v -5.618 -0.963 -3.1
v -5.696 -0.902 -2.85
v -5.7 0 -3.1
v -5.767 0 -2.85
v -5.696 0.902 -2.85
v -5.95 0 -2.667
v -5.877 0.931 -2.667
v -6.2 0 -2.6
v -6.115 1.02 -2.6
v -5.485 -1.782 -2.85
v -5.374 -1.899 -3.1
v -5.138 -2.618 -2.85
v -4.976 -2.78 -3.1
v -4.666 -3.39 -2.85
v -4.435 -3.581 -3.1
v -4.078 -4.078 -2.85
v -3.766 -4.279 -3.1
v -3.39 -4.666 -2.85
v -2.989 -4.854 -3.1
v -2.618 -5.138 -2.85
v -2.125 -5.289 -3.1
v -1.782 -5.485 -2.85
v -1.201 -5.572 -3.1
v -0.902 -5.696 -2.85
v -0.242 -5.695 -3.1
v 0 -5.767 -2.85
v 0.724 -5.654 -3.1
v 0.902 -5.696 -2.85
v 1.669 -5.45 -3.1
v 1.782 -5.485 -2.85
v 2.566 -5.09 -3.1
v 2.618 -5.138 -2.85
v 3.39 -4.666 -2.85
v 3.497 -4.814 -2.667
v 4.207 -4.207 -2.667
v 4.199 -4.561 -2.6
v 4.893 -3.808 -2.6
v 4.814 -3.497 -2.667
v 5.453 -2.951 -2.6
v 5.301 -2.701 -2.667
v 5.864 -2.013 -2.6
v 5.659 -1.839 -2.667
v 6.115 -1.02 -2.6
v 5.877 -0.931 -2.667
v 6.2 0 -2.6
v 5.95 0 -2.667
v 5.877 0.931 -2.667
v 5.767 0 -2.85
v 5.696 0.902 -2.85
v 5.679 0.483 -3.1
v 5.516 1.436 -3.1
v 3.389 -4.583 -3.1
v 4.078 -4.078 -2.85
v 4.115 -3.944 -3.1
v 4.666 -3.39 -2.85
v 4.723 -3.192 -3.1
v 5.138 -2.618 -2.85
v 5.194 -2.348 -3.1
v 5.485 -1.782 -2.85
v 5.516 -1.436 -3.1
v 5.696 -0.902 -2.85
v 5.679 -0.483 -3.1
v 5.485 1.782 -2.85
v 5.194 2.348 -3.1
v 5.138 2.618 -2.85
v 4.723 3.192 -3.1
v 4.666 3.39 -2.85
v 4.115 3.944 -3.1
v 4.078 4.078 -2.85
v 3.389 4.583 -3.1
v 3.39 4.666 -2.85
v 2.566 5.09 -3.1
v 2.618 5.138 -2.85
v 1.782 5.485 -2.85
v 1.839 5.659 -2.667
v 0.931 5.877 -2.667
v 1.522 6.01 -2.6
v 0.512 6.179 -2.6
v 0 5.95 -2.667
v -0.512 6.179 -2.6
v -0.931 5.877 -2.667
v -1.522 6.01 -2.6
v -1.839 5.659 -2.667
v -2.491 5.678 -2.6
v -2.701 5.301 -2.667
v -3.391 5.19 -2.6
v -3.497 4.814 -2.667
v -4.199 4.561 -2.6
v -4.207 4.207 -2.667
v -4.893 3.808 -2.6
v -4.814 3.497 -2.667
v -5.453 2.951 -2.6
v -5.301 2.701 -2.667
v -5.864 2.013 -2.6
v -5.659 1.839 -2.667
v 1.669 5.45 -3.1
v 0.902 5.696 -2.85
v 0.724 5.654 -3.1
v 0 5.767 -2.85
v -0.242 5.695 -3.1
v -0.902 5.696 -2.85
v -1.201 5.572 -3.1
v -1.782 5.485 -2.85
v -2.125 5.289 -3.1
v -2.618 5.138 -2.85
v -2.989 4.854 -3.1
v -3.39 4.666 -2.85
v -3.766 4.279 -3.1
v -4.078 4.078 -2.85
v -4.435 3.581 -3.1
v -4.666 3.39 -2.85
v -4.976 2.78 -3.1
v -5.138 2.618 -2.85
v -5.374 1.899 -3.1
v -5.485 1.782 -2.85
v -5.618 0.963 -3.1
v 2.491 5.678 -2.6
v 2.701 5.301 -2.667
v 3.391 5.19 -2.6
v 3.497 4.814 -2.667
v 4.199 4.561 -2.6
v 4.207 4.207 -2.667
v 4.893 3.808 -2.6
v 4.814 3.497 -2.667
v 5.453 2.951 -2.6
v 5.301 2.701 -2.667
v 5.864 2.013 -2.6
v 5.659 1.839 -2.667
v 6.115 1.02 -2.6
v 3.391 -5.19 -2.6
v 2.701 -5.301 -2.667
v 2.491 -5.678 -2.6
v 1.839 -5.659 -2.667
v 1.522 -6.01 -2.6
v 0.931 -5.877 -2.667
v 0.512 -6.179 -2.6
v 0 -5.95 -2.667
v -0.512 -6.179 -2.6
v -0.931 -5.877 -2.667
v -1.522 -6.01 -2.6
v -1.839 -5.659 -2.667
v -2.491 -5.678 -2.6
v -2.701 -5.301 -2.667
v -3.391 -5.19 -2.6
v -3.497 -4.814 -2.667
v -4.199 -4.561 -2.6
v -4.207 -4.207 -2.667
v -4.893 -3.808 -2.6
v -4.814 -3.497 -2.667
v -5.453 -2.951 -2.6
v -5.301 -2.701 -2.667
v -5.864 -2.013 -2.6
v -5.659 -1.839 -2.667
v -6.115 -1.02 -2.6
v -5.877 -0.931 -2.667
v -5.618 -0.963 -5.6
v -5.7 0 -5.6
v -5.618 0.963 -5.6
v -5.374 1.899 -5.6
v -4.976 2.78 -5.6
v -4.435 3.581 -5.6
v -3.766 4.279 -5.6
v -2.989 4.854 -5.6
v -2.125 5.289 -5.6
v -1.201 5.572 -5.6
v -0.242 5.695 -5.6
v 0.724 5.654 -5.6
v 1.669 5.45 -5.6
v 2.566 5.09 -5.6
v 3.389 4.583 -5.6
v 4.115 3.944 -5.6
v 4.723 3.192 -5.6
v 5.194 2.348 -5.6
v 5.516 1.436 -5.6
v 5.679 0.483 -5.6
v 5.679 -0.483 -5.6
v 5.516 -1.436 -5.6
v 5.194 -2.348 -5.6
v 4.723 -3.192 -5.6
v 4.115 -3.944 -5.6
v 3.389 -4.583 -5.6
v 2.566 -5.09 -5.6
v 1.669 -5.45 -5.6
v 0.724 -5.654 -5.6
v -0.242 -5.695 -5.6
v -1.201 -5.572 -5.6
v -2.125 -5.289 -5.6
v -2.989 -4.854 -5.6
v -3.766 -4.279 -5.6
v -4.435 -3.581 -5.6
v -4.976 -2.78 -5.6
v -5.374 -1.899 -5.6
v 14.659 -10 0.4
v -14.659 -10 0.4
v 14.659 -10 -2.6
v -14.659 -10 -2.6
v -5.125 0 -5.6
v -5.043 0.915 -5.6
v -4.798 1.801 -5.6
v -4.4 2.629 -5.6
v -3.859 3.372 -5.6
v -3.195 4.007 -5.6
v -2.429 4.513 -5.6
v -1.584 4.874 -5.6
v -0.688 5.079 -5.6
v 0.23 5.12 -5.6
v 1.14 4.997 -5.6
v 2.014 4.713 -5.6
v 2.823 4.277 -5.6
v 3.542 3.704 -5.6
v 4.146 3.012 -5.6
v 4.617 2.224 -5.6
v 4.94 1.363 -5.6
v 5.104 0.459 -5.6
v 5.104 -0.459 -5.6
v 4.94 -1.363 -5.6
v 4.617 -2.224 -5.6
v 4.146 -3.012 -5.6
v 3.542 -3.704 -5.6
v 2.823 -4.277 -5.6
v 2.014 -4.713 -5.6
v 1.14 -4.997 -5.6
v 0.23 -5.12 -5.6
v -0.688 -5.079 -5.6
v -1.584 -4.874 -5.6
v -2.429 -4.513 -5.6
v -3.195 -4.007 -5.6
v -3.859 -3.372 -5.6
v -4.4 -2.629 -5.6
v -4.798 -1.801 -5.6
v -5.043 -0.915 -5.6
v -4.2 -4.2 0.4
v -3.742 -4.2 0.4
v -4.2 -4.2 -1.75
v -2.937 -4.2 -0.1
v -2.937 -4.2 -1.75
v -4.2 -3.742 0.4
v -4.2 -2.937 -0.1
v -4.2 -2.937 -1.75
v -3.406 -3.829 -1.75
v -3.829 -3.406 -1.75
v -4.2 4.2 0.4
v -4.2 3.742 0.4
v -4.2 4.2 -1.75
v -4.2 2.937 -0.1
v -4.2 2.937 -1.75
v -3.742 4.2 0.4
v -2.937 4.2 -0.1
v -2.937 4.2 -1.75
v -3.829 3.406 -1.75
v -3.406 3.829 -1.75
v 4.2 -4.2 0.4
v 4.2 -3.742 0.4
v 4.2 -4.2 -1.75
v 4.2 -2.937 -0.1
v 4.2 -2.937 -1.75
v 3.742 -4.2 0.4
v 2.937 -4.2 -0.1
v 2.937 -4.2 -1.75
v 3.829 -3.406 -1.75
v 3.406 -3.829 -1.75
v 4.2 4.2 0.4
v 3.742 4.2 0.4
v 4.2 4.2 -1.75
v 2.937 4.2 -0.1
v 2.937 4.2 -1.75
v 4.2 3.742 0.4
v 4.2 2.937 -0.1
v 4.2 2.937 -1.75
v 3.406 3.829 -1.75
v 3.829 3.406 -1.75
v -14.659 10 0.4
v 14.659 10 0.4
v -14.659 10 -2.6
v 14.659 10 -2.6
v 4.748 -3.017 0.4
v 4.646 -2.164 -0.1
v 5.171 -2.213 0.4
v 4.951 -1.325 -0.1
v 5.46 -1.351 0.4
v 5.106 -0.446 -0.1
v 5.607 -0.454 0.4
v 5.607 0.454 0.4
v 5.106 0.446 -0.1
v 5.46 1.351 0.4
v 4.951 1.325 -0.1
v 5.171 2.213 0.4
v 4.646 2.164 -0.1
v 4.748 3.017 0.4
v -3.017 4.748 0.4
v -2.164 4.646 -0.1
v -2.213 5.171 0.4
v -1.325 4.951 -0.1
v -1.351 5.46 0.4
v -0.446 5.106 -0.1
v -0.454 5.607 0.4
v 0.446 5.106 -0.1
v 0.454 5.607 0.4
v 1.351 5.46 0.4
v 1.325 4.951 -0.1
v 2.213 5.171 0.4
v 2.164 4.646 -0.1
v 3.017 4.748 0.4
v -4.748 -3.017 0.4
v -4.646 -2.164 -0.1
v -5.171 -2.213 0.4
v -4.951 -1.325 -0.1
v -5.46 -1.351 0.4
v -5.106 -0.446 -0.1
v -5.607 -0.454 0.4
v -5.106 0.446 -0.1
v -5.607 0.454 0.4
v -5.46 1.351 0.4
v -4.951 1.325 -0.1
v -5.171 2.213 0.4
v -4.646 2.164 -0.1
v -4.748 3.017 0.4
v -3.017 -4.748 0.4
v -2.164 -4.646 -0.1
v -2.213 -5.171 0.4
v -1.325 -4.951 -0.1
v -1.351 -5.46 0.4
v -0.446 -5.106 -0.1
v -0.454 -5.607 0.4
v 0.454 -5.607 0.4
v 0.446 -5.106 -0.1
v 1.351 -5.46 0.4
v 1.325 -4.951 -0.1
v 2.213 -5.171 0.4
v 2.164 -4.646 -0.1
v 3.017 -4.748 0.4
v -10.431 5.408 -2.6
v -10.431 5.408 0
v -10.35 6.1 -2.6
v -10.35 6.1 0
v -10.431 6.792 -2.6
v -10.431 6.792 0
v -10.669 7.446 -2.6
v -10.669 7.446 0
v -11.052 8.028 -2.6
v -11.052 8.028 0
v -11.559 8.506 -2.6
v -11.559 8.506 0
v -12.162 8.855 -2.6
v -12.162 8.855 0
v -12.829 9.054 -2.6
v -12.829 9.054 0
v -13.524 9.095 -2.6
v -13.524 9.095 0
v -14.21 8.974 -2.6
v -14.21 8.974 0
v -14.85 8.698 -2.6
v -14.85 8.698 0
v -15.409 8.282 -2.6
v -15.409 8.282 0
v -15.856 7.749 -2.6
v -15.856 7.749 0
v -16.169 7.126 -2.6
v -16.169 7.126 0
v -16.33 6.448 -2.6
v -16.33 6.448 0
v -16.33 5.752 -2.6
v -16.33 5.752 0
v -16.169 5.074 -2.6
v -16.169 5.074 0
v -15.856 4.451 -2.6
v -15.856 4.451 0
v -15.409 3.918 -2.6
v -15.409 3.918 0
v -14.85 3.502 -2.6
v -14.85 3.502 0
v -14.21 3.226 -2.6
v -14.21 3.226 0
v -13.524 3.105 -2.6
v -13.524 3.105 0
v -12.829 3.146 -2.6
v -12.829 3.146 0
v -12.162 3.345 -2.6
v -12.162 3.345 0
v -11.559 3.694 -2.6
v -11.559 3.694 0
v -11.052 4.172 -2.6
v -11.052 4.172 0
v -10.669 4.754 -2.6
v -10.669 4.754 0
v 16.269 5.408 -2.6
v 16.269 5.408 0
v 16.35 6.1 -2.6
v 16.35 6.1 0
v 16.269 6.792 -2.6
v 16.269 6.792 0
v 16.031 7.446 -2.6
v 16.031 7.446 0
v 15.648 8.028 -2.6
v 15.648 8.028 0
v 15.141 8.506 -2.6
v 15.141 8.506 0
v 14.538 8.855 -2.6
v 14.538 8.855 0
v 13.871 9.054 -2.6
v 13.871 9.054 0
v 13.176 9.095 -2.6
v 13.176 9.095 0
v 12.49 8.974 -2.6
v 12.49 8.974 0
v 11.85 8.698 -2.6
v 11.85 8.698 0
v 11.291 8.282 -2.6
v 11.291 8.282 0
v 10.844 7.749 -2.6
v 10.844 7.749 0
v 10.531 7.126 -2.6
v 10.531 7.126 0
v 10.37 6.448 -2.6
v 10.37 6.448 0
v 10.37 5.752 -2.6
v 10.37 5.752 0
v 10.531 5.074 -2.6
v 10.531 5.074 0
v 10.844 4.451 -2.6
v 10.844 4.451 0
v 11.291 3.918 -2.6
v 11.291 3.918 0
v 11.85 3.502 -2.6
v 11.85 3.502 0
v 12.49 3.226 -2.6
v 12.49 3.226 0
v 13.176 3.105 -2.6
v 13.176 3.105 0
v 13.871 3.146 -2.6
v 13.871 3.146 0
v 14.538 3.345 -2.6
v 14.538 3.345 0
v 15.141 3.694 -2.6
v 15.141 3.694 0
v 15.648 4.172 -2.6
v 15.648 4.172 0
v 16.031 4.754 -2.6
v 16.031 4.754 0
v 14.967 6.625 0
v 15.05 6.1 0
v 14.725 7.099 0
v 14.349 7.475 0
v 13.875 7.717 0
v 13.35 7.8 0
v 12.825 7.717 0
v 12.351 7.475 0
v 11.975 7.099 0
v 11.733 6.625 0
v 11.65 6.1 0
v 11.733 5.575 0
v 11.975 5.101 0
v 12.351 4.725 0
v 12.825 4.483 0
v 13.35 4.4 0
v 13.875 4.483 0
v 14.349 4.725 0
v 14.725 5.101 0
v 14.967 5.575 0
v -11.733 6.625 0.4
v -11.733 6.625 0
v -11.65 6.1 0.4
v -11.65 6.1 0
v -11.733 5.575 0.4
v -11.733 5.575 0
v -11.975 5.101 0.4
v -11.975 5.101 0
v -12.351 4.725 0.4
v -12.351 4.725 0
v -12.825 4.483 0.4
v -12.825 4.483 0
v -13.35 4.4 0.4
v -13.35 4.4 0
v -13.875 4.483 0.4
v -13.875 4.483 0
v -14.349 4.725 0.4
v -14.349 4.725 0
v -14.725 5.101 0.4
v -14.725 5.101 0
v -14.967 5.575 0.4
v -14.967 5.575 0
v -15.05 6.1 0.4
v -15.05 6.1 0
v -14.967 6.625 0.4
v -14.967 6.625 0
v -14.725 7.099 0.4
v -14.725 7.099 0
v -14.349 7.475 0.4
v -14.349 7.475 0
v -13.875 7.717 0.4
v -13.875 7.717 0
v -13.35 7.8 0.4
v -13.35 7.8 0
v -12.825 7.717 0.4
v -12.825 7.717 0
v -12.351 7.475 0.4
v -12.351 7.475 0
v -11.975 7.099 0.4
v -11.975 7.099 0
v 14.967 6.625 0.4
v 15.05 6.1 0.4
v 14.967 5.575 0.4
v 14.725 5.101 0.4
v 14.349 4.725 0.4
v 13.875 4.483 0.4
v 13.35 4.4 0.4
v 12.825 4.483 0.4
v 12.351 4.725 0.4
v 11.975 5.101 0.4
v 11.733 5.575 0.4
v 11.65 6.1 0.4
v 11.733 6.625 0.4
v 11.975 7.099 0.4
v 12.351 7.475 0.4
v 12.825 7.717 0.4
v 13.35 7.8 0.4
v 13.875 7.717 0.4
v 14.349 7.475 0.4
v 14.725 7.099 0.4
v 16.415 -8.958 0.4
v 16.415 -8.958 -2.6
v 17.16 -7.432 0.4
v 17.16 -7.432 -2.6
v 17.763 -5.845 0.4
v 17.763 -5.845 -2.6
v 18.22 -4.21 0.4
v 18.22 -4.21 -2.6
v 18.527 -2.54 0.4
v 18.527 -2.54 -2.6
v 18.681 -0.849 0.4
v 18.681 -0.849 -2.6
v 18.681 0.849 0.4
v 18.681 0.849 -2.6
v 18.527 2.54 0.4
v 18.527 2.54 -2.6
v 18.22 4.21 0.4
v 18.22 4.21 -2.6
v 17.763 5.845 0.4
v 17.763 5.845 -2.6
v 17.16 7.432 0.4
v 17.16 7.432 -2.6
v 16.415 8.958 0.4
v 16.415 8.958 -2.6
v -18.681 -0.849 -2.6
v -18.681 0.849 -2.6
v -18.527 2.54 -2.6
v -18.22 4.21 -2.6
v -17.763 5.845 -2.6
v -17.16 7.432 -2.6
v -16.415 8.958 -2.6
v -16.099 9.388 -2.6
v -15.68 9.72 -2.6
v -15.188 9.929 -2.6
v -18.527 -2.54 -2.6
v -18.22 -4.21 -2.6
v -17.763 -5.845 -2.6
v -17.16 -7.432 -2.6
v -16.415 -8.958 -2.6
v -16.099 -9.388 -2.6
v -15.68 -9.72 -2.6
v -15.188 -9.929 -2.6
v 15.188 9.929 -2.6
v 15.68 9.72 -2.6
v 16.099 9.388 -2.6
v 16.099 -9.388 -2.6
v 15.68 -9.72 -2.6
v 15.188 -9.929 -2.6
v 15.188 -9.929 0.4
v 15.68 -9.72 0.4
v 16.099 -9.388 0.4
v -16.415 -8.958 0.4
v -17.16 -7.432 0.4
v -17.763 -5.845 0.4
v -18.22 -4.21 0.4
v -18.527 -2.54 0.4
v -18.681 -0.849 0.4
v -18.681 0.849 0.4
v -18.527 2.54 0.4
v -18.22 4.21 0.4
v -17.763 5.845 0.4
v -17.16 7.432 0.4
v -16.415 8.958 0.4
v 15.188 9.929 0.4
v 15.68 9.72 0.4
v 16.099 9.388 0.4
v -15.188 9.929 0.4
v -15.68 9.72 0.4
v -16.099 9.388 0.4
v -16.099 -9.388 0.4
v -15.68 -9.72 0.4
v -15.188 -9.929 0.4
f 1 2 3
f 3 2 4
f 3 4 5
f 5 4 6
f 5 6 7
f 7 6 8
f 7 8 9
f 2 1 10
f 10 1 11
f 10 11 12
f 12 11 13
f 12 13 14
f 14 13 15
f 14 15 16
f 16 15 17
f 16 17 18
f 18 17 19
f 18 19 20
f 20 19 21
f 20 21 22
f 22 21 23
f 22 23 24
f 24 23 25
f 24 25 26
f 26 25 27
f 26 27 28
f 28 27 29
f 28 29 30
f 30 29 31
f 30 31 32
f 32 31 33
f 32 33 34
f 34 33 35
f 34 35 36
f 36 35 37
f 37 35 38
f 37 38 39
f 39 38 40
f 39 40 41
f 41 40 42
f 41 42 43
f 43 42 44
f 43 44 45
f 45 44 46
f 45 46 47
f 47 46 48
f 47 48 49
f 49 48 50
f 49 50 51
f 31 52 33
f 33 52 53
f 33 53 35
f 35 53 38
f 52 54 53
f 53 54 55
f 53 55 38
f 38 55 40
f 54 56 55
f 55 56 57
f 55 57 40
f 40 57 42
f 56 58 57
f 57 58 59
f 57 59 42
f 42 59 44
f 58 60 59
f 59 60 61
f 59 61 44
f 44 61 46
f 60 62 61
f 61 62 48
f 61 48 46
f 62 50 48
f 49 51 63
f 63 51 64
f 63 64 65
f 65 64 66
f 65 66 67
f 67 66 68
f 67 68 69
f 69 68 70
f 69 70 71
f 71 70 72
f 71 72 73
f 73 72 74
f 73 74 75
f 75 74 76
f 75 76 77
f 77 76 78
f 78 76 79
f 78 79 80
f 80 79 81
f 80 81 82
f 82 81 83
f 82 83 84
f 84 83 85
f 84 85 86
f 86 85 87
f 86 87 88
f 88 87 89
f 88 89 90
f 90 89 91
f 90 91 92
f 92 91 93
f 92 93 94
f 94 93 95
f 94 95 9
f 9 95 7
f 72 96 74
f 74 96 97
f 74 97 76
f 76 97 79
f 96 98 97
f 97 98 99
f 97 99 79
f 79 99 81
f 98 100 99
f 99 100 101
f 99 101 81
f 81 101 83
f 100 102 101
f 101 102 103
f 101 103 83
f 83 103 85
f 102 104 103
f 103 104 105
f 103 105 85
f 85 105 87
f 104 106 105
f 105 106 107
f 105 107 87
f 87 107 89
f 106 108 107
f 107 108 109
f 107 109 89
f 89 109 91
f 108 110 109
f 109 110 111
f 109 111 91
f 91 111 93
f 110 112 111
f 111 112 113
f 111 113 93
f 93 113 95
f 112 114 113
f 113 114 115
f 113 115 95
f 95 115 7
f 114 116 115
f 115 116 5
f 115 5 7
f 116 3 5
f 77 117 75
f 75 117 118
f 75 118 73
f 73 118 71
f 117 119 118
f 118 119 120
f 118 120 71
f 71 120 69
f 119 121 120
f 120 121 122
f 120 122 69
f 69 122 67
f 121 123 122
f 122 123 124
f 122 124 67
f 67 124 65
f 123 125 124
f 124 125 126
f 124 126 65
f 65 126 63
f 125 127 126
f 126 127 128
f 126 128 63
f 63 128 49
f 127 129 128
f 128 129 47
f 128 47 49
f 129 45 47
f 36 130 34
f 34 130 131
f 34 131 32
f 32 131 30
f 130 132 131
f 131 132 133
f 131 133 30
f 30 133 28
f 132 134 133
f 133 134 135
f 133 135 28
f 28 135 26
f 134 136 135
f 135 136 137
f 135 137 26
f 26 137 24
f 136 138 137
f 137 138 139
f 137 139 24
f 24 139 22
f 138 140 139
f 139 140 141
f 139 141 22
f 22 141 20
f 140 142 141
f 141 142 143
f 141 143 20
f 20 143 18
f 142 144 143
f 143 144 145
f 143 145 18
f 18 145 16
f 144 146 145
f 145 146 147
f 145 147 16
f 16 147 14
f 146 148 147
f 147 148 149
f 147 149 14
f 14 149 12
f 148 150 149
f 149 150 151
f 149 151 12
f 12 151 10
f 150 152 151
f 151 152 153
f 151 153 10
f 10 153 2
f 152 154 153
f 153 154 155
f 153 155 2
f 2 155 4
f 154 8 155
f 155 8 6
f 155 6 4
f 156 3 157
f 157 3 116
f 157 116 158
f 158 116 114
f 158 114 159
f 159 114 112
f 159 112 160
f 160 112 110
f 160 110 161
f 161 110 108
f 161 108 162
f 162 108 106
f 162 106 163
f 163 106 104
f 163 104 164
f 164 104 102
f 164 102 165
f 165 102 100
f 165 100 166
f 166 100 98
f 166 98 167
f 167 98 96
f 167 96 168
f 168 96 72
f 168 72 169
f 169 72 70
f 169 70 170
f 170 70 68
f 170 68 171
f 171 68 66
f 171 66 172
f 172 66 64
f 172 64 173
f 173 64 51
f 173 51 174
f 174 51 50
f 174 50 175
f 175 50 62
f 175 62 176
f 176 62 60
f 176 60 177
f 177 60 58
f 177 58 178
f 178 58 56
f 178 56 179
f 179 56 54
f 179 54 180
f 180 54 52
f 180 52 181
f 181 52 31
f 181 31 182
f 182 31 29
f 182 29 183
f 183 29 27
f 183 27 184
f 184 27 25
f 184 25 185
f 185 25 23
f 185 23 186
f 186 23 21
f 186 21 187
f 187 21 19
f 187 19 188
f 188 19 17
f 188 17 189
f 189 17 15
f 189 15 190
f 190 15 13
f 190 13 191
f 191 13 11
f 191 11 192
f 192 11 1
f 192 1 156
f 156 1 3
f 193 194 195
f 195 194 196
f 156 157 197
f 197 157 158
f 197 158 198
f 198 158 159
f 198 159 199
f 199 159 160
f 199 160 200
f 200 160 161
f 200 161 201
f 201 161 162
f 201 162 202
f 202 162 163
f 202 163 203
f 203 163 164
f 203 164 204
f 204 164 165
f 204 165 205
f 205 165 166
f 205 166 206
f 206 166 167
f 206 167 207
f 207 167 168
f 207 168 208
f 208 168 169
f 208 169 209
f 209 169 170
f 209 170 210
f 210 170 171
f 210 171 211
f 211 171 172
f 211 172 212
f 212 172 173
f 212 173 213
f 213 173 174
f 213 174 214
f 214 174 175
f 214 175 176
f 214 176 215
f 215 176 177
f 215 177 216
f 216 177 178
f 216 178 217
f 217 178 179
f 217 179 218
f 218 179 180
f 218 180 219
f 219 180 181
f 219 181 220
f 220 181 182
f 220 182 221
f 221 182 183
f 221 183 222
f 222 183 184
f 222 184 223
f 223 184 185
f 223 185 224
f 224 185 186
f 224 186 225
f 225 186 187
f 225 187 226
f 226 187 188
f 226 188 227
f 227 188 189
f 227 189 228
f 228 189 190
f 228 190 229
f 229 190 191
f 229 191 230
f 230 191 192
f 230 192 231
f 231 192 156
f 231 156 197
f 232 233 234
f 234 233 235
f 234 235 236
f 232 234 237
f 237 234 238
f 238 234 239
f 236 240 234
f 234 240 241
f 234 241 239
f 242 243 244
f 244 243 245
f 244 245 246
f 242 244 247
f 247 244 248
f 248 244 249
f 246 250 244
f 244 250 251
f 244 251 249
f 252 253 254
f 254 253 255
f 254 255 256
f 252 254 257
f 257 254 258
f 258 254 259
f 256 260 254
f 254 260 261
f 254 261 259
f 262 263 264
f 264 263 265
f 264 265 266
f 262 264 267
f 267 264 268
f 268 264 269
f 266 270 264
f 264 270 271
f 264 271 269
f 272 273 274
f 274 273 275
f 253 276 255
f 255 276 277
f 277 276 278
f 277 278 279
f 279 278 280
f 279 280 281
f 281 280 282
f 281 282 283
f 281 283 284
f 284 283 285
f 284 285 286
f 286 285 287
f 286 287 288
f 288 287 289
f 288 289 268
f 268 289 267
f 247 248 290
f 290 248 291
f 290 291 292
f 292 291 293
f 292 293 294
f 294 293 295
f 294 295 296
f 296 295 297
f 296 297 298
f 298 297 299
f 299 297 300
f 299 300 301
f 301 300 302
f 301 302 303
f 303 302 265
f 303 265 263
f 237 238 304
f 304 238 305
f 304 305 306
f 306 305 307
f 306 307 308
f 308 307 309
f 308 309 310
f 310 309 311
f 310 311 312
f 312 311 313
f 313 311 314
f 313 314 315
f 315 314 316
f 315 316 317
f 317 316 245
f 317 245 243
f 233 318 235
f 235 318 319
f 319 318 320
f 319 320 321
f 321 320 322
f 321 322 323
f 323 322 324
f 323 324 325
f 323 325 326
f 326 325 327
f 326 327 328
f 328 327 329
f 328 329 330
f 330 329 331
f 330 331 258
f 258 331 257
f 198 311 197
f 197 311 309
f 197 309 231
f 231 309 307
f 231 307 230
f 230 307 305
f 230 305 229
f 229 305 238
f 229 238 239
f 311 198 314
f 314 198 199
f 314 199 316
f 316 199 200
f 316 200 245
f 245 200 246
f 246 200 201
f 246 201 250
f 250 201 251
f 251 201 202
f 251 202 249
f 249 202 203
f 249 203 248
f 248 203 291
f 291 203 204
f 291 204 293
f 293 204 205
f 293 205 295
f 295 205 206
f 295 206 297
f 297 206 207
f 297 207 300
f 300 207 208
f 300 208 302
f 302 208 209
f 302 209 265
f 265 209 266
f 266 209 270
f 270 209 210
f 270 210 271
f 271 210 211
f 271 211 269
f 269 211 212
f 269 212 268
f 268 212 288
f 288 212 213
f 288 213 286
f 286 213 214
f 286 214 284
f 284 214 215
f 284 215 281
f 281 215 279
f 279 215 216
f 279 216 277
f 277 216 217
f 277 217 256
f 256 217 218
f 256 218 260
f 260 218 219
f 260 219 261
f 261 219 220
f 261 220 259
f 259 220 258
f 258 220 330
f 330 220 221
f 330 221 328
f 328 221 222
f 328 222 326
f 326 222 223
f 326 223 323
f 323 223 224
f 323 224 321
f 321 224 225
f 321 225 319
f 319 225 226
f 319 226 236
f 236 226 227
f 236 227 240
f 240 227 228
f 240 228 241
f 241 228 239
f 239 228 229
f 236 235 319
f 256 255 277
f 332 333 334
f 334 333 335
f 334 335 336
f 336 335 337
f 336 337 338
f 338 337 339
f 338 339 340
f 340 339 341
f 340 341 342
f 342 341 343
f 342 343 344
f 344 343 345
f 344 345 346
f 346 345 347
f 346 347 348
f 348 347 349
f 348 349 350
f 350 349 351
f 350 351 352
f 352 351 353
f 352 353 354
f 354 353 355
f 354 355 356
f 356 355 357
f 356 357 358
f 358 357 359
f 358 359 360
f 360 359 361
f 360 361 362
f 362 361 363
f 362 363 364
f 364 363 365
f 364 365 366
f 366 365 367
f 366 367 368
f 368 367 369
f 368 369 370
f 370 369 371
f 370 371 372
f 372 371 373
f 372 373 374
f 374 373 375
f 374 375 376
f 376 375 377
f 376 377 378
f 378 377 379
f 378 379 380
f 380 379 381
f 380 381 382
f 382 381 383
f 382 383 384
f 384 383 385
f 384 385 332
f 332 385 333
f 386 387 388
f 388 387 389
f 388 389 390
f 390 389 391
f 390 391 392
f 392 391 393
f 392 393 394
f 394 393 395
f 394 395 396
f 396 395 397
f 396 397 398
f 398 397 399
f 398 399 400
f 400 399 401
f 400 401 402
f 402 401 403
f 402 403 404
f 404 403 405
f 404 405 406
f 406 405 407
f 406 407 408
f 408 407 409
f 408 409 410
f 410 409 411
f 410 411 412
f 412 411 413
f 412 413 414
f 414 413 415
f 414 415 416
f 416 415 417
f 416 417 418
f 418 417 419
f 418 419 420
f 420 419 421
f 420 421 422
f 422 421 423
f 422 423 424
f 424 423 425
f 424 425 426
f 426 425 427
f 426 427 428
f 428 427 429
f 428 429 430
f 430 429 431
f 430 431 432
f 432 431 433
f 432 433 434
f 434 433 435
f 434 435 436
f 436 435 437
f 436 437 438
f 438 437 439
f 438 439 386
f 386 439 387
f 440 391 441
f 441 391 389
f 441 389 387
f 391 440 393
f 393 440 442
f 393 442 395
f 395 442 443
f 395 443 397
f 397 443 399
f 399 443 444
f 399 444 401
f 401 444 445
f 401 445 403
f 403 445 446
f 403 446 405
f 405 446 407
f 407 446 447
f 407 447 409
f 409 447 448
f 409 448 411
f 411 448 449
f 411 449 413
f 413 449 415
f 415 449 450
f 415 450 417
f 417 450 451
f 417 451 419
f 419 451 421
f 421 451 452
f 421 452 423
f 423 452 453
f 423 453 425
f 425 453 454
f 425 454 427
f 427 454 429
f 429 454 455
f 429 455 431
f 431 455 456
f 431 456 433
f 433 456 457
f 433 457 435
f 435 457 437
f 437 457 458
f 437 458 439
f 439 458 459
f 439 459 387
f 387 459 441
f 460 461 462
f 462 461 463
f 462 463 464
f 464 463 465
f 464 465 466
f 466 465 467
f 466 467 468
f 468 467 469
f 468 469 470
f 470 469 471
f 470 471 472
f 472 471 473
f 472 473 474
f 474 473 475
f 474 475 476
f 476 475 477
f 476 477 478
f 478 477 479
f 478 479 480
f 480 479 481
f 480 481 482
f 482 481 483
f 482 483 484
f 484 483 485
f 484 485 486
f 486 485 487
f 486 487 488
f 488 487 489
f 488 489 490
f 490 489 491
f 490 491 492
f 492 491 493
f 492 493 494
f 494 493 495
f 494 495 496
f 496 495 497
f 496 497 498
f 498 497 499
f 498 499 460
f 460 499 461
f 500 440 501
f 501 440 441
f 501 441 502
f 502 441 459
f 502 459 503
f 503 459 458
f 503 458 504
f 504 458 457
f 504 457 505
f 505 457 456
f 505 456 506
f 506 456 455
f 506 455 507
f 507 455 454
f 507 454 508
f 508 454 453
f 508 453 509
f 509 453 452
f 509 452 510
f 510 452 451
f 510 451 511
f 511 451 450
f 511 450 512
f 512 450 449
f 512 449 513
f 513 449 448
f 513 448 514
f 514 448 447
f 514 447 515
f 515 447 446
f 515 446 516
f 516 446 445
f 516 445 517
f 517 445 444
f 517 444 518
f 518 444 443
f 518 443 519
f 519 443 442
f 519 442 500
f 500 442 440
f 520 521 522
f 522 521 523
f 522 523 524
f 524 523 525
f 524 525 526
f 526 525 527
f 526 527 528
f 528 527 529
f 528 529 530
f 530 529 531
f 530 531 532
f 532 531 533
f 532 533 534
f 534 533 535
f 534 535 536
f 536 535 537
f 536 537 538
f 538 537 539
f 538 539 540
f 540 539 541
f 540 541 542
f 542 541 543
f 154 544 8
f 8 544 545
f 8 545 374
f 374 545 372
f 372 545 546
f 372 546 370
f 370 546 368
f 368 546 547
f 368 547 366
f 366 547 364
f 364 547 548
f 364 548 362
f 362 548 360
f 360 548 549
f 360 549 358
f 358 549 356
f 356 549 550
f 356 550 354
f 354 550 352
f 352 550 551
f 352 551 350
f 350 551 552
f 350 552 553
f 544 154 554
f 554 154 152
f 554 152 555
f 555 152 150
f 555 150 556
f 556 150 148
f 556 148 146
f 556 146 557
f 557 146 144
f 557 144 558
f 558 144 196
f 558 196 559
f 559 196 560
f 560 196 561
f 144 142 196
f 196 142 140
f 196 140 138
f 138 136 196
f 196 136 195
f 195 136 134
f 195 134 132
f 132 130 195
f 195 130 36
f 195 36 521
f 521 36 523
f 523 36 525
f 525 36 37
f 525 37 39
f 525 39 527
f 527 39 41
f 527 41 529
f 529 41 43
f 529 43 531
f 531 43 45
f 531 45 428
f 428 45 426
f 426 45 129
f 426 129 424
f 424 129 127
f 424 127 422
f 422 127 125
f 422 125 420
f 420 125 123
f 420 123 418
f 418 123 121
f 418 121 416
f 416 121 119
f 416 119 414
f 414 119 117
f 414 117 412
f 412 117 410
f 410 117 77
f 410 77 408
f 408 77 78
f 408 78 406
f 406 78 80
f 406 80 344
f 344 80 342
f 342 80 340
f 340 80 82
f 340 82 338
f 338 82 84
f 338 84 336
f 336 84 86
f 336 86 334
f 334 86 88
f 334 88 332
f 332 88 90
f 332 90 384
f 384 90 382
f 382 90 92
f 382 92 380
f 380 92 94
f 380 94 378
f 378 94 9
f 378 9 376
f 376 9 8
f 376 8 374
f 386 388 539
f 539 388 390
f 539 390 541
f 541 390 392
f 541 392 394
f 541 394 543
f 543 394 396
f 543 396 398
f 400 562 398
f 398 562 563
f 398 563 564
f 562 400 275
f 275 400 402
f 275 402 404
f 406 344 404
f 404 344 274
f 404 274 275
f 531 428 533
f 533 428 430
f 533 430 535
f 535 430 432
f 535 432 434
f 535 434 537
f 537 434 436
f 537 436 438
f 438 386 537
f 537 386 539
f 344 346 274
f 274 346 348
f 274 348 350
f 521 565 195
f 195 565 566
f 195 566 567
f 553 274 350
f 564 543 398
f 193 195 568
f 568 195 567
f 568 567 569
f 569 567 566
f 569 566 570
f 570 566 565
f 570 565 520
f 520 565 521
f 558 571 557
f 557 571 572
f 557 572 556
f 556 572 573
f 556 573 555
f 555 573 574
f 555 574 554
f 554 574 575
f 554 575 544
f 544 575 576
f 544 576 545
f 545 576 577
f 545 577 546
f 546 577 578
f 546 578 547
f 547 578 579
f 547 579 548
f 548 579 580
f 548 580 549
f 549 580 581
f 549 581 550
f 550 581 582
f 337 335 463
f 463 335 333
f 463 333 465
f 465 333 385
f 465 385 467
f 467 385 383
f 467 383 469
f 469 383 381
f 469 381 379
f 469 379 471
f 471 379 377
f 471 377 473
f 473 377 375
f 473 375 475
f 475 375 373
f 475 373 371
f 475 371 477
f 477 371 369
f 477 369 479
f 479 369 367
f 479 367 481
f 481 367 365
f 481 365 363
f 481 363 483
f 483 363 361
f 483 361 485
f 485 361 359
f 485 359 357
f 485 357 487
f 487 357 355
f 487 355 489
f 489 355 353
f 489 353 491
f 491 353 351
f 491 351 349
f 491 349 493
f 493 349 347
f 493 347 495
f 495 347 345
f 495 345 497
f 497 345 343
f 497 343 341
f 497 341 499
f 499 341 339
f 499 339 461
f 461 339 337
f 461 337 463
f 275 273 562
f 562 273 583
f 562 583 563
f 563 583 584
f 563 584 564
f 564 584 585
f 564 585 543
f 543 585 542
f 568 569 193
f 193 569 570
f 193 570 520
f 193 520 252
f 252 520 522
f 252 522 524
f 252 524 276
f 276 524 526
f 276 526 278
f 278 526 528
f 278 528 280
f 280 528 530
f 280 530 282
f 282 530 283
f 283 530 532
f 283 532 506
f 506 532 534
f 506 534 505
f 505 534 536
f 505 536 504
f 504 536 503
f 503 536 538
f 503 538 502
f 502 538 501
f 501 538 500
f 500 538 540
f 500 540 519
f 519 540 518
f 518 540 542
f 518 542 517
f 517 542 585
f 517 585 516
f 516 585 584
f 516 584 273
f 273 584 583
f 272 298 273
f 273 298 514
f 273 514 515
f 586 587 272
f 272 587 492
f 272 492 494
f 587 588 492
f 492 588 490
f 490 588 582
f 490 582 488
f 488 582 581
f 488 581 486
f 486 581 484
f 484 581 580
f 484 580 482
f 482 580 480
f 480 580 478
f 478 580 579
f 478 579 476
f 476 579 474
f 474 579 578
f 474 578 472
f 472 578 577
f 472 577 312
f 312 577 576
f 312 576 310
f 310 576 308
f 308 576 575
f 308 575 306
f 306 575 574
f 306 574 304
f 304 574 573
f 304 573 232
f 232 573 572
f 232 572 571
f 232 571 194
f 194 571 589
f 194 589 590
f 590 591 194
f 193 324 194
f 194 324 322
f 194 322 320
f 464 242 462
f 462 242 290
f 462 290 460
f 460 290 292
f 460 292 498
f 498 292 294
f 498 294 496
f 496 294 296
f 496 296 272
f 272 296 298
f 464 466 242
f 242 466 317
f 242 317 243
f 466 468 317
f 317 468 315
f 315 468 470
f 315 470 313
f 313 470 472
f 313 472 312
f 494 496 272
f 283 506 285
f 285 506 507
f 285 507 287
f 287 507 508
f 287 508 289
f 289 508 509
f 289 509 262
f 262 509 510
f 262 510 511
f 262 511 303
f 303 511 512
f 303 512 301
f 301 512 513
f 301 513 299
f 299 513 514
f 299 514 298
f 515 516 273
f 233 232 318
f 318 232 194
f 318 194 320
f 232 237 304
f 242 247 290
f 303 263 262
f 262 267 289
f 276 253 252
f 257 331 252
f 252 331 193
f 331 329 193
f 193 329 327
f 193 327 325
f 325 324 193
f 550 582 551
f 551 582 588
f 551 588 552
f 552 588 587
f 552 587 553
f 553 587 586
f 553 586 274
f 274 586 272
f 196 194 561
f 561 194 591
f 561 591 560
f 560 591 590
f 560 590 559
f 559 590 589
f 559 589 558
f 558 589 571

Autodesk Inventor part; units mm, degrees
ref_plane "YZ Plane" through (0, 0, 0) normal (1, 0, 0) x (0, 1, 0)
ref_plane "XZ Plane" through (0, 0, 0) normal (0, 1, 0) x (-1, 0, 0)
ref_plane "XY Plane" through (0, 0, 0) normal (0, 0, 1) x (1, 0, 0)
sketch "Náčrt1" plane through (0, 0, 0) normal (0, 0, 1) x (1, 0, 0)
  circle A0 centre (0, 0) radius 5.125
  arc A1 (8.5, -16.6565) -> (-8.5, -16.6565) centre (0, 0) ccw
  line L0 (-13.35, 6.1) -> (13.35, 6.1)
  line L1 (0, 18.7) -> (0, -18.7)
  line L2 (8.5, -16.6565) -> (8.5, -22.2)
  line L3 (8.5, -22.2) -> (-8.5, -22.2)
  line L4 (-8.5, -22.2) -> (-8.5, -16.6565)
  line L5 (0, -18.7) -> (8.5, -22.2) construction
  line L6 (0, -18.7) -> (-8.5, -22.2) construction
  circle A2 centre (-13.35, 6.1) radius 1.7
  circle A3 centre (13.35, 6.1) radius 1.7
  line L7 (-12.1033, 10) -> (12.1033, 10)
  arc A4 (12.1033, 10) -> (-12.1033, 10) centre (0, 0) ccw
  line L8 (4.2, 4.2) -> (-4.2, 4.2)
  line L9 (-4.2, 4.2) -> (-4.2, -4.2)
  line L10 (-4.2, -4.2) -> (4.2, -4.2)
  line L11 (4.2, -4.2) -> (4.2, 4.2)
  line L12 (4.2, 4.2) -> (-4.2, -4.2) construction
  line L13 (-4.2, 4.2) -> (4.2, -4.2) construction
  line L14 (-3.55, -20.2) -> (3.55, -20.2)
  line L15 (3.55, -20.2) -> (3.55, -17.1)
  line L16 (3.55, -17.1) -> (-3.55, -17.1)
  line L17 (-3.55, -17.1) -> (-3.55, -20.2)
  line L18 (-3.55, -20.2) -> (3.55, -17.1) construction
  line L19 (3.55, -20.2) -> (-3.55, -17.1) construction
  circle A5 centre (0, 0) radius 5.575
  circle A6 centre (0, 0) radius 18.7
  circle A7 centre (-13.35, 6.1) radius 3
  circle A8 centre (13.35, 6.1) radius 3
  line L20 (-17.6407, 10) -> (18.7, 10)
  line L21 (0, 0) -> (-2.6642, 0) construction
  line L22 (-17.6407, -10) -> (18.7, -10)
  point P0 (-10.088, 6.1)
  point P1 (4.2, -2.9369)
  point P2 (2.9369, -4.2)
  point P3 (-2.9369, -4.2)
  point P4 (-4.2, -2.9369)
  point P5 (-4.2, 2.9369)
  point P6 (-2.9369, 4.2)
  point P7 (4.2, 2.9369)
  point P8 (2.9369, 4.2)
  point P9 (0, -18.65)
  point P10 (-8.5, -16.6565)
  point P11 (15.8016, -10)
  point P12 (15.8016, 10)
  point P13 (-15.8016, 10)
  point P14 (-15.8016, -10)
  dimension "d0" = 10.25
  dimension "d1" = 37.4
  dimension "d2" = 26.7
  dimension "d3" = 17
  dimension "d5" = 22.2
  dimension "d7" = 6.1
  dimension "d9" = 3.4
  dimension "d10" = 3.4
  dimension "d12" = 10
  dimension "d14" = 3
  dimension "d25" = 8.4
  dimension "d26" = 8.4
  dimension "d31" = 3.1
  dimension "d32" = 7.1
  dimension "d33" = 2
  dimension "d39" = 0.45
  dimension "d40" = 6
  dimension "d41" = 6
extrude "Vysunutí1" add sketch "Náčrt1" along normal blind 0.4 contours A0 L11 A5 | A0 L8 A5 L11 | L11 A5 L10 A0 | A0 L1 A5 L8 | A5 L8 L11 | L11 L8 A5 L1 L7 L20 A1 L22 L10 | L10 A5 L1 A0 | L11 L10 A5 | A0 L8 A5 L1 | L1 A5 L10 A0 | A0 L9 A5 L8 | A5 L8 L9 L10 L1 L22 A1 L20 L7 | L10 A5 L9 A0 | A0 L9 A5 | A5 L9 L8 | L10 L9 A5 | A7 | A8
extrude "Vysunutí2" add sketch "Náčrt1" against normal blind 2.6 contours A0 L11 A5 | A0 L8 A5 L11 | L11 A5 L10 A0 | A0 L1 A5 L8 | A5 L8 L11 | L11 L8 A5 L1 L7 L20 A1 L22 L10 | L10 A5 L1 A0 | L11 L10 A5 | A0 L8 A5 L1 | L1 A5 L10 A0 | A0 L9 A5 L8 | A5 L8 L9 L10 L1 L22 A1 L20 L7 | L10 A5 L9 A0 | A0 L9 A5 | A5 L9 L8 | L10 L9 A5
chamfer "Zkosení1" distance 0.5 angle 45 1 edges at (-5.125, 0, 0.4)
extrude "Vysunutí3" cut sketch "Náčrt1" along normal blind 0.75 and the other way blind 1.75 contours A0 L8 A5 L11 | L11 A5 L10 A0 | A5 L8 L11 | L11 L10 A5 | A0 L9 A5 L8 | L10 A5 L9 A0 | A5 L9 L8 | L10 L9 A5
sketch "Náčrt2" plane through (0, 0, -2.6) normal (0, 0, -1) x (-1, 0, 0)
  circle A0 centre (0, 0) radius 5.125 projected
  circle A1 centre (0, 0) radius 5.7
  dimension "d35" = 11.4
extrude "Vysunutí4" add sketch "Náčrt2" along normal blind 3
fillet "Zaoblení4" radius 0.5 1 edges at (5.7, 0, -2.6)
fillet "Zaoblení5" radius 2 4 edges at (15.8016, 10, -1.1) (-15.8016, 10, -1.1) (-15.8016, -10, -1.1) (15.8016, -10, -1.1)
properties part number "Držák-Cam+ir V2"
